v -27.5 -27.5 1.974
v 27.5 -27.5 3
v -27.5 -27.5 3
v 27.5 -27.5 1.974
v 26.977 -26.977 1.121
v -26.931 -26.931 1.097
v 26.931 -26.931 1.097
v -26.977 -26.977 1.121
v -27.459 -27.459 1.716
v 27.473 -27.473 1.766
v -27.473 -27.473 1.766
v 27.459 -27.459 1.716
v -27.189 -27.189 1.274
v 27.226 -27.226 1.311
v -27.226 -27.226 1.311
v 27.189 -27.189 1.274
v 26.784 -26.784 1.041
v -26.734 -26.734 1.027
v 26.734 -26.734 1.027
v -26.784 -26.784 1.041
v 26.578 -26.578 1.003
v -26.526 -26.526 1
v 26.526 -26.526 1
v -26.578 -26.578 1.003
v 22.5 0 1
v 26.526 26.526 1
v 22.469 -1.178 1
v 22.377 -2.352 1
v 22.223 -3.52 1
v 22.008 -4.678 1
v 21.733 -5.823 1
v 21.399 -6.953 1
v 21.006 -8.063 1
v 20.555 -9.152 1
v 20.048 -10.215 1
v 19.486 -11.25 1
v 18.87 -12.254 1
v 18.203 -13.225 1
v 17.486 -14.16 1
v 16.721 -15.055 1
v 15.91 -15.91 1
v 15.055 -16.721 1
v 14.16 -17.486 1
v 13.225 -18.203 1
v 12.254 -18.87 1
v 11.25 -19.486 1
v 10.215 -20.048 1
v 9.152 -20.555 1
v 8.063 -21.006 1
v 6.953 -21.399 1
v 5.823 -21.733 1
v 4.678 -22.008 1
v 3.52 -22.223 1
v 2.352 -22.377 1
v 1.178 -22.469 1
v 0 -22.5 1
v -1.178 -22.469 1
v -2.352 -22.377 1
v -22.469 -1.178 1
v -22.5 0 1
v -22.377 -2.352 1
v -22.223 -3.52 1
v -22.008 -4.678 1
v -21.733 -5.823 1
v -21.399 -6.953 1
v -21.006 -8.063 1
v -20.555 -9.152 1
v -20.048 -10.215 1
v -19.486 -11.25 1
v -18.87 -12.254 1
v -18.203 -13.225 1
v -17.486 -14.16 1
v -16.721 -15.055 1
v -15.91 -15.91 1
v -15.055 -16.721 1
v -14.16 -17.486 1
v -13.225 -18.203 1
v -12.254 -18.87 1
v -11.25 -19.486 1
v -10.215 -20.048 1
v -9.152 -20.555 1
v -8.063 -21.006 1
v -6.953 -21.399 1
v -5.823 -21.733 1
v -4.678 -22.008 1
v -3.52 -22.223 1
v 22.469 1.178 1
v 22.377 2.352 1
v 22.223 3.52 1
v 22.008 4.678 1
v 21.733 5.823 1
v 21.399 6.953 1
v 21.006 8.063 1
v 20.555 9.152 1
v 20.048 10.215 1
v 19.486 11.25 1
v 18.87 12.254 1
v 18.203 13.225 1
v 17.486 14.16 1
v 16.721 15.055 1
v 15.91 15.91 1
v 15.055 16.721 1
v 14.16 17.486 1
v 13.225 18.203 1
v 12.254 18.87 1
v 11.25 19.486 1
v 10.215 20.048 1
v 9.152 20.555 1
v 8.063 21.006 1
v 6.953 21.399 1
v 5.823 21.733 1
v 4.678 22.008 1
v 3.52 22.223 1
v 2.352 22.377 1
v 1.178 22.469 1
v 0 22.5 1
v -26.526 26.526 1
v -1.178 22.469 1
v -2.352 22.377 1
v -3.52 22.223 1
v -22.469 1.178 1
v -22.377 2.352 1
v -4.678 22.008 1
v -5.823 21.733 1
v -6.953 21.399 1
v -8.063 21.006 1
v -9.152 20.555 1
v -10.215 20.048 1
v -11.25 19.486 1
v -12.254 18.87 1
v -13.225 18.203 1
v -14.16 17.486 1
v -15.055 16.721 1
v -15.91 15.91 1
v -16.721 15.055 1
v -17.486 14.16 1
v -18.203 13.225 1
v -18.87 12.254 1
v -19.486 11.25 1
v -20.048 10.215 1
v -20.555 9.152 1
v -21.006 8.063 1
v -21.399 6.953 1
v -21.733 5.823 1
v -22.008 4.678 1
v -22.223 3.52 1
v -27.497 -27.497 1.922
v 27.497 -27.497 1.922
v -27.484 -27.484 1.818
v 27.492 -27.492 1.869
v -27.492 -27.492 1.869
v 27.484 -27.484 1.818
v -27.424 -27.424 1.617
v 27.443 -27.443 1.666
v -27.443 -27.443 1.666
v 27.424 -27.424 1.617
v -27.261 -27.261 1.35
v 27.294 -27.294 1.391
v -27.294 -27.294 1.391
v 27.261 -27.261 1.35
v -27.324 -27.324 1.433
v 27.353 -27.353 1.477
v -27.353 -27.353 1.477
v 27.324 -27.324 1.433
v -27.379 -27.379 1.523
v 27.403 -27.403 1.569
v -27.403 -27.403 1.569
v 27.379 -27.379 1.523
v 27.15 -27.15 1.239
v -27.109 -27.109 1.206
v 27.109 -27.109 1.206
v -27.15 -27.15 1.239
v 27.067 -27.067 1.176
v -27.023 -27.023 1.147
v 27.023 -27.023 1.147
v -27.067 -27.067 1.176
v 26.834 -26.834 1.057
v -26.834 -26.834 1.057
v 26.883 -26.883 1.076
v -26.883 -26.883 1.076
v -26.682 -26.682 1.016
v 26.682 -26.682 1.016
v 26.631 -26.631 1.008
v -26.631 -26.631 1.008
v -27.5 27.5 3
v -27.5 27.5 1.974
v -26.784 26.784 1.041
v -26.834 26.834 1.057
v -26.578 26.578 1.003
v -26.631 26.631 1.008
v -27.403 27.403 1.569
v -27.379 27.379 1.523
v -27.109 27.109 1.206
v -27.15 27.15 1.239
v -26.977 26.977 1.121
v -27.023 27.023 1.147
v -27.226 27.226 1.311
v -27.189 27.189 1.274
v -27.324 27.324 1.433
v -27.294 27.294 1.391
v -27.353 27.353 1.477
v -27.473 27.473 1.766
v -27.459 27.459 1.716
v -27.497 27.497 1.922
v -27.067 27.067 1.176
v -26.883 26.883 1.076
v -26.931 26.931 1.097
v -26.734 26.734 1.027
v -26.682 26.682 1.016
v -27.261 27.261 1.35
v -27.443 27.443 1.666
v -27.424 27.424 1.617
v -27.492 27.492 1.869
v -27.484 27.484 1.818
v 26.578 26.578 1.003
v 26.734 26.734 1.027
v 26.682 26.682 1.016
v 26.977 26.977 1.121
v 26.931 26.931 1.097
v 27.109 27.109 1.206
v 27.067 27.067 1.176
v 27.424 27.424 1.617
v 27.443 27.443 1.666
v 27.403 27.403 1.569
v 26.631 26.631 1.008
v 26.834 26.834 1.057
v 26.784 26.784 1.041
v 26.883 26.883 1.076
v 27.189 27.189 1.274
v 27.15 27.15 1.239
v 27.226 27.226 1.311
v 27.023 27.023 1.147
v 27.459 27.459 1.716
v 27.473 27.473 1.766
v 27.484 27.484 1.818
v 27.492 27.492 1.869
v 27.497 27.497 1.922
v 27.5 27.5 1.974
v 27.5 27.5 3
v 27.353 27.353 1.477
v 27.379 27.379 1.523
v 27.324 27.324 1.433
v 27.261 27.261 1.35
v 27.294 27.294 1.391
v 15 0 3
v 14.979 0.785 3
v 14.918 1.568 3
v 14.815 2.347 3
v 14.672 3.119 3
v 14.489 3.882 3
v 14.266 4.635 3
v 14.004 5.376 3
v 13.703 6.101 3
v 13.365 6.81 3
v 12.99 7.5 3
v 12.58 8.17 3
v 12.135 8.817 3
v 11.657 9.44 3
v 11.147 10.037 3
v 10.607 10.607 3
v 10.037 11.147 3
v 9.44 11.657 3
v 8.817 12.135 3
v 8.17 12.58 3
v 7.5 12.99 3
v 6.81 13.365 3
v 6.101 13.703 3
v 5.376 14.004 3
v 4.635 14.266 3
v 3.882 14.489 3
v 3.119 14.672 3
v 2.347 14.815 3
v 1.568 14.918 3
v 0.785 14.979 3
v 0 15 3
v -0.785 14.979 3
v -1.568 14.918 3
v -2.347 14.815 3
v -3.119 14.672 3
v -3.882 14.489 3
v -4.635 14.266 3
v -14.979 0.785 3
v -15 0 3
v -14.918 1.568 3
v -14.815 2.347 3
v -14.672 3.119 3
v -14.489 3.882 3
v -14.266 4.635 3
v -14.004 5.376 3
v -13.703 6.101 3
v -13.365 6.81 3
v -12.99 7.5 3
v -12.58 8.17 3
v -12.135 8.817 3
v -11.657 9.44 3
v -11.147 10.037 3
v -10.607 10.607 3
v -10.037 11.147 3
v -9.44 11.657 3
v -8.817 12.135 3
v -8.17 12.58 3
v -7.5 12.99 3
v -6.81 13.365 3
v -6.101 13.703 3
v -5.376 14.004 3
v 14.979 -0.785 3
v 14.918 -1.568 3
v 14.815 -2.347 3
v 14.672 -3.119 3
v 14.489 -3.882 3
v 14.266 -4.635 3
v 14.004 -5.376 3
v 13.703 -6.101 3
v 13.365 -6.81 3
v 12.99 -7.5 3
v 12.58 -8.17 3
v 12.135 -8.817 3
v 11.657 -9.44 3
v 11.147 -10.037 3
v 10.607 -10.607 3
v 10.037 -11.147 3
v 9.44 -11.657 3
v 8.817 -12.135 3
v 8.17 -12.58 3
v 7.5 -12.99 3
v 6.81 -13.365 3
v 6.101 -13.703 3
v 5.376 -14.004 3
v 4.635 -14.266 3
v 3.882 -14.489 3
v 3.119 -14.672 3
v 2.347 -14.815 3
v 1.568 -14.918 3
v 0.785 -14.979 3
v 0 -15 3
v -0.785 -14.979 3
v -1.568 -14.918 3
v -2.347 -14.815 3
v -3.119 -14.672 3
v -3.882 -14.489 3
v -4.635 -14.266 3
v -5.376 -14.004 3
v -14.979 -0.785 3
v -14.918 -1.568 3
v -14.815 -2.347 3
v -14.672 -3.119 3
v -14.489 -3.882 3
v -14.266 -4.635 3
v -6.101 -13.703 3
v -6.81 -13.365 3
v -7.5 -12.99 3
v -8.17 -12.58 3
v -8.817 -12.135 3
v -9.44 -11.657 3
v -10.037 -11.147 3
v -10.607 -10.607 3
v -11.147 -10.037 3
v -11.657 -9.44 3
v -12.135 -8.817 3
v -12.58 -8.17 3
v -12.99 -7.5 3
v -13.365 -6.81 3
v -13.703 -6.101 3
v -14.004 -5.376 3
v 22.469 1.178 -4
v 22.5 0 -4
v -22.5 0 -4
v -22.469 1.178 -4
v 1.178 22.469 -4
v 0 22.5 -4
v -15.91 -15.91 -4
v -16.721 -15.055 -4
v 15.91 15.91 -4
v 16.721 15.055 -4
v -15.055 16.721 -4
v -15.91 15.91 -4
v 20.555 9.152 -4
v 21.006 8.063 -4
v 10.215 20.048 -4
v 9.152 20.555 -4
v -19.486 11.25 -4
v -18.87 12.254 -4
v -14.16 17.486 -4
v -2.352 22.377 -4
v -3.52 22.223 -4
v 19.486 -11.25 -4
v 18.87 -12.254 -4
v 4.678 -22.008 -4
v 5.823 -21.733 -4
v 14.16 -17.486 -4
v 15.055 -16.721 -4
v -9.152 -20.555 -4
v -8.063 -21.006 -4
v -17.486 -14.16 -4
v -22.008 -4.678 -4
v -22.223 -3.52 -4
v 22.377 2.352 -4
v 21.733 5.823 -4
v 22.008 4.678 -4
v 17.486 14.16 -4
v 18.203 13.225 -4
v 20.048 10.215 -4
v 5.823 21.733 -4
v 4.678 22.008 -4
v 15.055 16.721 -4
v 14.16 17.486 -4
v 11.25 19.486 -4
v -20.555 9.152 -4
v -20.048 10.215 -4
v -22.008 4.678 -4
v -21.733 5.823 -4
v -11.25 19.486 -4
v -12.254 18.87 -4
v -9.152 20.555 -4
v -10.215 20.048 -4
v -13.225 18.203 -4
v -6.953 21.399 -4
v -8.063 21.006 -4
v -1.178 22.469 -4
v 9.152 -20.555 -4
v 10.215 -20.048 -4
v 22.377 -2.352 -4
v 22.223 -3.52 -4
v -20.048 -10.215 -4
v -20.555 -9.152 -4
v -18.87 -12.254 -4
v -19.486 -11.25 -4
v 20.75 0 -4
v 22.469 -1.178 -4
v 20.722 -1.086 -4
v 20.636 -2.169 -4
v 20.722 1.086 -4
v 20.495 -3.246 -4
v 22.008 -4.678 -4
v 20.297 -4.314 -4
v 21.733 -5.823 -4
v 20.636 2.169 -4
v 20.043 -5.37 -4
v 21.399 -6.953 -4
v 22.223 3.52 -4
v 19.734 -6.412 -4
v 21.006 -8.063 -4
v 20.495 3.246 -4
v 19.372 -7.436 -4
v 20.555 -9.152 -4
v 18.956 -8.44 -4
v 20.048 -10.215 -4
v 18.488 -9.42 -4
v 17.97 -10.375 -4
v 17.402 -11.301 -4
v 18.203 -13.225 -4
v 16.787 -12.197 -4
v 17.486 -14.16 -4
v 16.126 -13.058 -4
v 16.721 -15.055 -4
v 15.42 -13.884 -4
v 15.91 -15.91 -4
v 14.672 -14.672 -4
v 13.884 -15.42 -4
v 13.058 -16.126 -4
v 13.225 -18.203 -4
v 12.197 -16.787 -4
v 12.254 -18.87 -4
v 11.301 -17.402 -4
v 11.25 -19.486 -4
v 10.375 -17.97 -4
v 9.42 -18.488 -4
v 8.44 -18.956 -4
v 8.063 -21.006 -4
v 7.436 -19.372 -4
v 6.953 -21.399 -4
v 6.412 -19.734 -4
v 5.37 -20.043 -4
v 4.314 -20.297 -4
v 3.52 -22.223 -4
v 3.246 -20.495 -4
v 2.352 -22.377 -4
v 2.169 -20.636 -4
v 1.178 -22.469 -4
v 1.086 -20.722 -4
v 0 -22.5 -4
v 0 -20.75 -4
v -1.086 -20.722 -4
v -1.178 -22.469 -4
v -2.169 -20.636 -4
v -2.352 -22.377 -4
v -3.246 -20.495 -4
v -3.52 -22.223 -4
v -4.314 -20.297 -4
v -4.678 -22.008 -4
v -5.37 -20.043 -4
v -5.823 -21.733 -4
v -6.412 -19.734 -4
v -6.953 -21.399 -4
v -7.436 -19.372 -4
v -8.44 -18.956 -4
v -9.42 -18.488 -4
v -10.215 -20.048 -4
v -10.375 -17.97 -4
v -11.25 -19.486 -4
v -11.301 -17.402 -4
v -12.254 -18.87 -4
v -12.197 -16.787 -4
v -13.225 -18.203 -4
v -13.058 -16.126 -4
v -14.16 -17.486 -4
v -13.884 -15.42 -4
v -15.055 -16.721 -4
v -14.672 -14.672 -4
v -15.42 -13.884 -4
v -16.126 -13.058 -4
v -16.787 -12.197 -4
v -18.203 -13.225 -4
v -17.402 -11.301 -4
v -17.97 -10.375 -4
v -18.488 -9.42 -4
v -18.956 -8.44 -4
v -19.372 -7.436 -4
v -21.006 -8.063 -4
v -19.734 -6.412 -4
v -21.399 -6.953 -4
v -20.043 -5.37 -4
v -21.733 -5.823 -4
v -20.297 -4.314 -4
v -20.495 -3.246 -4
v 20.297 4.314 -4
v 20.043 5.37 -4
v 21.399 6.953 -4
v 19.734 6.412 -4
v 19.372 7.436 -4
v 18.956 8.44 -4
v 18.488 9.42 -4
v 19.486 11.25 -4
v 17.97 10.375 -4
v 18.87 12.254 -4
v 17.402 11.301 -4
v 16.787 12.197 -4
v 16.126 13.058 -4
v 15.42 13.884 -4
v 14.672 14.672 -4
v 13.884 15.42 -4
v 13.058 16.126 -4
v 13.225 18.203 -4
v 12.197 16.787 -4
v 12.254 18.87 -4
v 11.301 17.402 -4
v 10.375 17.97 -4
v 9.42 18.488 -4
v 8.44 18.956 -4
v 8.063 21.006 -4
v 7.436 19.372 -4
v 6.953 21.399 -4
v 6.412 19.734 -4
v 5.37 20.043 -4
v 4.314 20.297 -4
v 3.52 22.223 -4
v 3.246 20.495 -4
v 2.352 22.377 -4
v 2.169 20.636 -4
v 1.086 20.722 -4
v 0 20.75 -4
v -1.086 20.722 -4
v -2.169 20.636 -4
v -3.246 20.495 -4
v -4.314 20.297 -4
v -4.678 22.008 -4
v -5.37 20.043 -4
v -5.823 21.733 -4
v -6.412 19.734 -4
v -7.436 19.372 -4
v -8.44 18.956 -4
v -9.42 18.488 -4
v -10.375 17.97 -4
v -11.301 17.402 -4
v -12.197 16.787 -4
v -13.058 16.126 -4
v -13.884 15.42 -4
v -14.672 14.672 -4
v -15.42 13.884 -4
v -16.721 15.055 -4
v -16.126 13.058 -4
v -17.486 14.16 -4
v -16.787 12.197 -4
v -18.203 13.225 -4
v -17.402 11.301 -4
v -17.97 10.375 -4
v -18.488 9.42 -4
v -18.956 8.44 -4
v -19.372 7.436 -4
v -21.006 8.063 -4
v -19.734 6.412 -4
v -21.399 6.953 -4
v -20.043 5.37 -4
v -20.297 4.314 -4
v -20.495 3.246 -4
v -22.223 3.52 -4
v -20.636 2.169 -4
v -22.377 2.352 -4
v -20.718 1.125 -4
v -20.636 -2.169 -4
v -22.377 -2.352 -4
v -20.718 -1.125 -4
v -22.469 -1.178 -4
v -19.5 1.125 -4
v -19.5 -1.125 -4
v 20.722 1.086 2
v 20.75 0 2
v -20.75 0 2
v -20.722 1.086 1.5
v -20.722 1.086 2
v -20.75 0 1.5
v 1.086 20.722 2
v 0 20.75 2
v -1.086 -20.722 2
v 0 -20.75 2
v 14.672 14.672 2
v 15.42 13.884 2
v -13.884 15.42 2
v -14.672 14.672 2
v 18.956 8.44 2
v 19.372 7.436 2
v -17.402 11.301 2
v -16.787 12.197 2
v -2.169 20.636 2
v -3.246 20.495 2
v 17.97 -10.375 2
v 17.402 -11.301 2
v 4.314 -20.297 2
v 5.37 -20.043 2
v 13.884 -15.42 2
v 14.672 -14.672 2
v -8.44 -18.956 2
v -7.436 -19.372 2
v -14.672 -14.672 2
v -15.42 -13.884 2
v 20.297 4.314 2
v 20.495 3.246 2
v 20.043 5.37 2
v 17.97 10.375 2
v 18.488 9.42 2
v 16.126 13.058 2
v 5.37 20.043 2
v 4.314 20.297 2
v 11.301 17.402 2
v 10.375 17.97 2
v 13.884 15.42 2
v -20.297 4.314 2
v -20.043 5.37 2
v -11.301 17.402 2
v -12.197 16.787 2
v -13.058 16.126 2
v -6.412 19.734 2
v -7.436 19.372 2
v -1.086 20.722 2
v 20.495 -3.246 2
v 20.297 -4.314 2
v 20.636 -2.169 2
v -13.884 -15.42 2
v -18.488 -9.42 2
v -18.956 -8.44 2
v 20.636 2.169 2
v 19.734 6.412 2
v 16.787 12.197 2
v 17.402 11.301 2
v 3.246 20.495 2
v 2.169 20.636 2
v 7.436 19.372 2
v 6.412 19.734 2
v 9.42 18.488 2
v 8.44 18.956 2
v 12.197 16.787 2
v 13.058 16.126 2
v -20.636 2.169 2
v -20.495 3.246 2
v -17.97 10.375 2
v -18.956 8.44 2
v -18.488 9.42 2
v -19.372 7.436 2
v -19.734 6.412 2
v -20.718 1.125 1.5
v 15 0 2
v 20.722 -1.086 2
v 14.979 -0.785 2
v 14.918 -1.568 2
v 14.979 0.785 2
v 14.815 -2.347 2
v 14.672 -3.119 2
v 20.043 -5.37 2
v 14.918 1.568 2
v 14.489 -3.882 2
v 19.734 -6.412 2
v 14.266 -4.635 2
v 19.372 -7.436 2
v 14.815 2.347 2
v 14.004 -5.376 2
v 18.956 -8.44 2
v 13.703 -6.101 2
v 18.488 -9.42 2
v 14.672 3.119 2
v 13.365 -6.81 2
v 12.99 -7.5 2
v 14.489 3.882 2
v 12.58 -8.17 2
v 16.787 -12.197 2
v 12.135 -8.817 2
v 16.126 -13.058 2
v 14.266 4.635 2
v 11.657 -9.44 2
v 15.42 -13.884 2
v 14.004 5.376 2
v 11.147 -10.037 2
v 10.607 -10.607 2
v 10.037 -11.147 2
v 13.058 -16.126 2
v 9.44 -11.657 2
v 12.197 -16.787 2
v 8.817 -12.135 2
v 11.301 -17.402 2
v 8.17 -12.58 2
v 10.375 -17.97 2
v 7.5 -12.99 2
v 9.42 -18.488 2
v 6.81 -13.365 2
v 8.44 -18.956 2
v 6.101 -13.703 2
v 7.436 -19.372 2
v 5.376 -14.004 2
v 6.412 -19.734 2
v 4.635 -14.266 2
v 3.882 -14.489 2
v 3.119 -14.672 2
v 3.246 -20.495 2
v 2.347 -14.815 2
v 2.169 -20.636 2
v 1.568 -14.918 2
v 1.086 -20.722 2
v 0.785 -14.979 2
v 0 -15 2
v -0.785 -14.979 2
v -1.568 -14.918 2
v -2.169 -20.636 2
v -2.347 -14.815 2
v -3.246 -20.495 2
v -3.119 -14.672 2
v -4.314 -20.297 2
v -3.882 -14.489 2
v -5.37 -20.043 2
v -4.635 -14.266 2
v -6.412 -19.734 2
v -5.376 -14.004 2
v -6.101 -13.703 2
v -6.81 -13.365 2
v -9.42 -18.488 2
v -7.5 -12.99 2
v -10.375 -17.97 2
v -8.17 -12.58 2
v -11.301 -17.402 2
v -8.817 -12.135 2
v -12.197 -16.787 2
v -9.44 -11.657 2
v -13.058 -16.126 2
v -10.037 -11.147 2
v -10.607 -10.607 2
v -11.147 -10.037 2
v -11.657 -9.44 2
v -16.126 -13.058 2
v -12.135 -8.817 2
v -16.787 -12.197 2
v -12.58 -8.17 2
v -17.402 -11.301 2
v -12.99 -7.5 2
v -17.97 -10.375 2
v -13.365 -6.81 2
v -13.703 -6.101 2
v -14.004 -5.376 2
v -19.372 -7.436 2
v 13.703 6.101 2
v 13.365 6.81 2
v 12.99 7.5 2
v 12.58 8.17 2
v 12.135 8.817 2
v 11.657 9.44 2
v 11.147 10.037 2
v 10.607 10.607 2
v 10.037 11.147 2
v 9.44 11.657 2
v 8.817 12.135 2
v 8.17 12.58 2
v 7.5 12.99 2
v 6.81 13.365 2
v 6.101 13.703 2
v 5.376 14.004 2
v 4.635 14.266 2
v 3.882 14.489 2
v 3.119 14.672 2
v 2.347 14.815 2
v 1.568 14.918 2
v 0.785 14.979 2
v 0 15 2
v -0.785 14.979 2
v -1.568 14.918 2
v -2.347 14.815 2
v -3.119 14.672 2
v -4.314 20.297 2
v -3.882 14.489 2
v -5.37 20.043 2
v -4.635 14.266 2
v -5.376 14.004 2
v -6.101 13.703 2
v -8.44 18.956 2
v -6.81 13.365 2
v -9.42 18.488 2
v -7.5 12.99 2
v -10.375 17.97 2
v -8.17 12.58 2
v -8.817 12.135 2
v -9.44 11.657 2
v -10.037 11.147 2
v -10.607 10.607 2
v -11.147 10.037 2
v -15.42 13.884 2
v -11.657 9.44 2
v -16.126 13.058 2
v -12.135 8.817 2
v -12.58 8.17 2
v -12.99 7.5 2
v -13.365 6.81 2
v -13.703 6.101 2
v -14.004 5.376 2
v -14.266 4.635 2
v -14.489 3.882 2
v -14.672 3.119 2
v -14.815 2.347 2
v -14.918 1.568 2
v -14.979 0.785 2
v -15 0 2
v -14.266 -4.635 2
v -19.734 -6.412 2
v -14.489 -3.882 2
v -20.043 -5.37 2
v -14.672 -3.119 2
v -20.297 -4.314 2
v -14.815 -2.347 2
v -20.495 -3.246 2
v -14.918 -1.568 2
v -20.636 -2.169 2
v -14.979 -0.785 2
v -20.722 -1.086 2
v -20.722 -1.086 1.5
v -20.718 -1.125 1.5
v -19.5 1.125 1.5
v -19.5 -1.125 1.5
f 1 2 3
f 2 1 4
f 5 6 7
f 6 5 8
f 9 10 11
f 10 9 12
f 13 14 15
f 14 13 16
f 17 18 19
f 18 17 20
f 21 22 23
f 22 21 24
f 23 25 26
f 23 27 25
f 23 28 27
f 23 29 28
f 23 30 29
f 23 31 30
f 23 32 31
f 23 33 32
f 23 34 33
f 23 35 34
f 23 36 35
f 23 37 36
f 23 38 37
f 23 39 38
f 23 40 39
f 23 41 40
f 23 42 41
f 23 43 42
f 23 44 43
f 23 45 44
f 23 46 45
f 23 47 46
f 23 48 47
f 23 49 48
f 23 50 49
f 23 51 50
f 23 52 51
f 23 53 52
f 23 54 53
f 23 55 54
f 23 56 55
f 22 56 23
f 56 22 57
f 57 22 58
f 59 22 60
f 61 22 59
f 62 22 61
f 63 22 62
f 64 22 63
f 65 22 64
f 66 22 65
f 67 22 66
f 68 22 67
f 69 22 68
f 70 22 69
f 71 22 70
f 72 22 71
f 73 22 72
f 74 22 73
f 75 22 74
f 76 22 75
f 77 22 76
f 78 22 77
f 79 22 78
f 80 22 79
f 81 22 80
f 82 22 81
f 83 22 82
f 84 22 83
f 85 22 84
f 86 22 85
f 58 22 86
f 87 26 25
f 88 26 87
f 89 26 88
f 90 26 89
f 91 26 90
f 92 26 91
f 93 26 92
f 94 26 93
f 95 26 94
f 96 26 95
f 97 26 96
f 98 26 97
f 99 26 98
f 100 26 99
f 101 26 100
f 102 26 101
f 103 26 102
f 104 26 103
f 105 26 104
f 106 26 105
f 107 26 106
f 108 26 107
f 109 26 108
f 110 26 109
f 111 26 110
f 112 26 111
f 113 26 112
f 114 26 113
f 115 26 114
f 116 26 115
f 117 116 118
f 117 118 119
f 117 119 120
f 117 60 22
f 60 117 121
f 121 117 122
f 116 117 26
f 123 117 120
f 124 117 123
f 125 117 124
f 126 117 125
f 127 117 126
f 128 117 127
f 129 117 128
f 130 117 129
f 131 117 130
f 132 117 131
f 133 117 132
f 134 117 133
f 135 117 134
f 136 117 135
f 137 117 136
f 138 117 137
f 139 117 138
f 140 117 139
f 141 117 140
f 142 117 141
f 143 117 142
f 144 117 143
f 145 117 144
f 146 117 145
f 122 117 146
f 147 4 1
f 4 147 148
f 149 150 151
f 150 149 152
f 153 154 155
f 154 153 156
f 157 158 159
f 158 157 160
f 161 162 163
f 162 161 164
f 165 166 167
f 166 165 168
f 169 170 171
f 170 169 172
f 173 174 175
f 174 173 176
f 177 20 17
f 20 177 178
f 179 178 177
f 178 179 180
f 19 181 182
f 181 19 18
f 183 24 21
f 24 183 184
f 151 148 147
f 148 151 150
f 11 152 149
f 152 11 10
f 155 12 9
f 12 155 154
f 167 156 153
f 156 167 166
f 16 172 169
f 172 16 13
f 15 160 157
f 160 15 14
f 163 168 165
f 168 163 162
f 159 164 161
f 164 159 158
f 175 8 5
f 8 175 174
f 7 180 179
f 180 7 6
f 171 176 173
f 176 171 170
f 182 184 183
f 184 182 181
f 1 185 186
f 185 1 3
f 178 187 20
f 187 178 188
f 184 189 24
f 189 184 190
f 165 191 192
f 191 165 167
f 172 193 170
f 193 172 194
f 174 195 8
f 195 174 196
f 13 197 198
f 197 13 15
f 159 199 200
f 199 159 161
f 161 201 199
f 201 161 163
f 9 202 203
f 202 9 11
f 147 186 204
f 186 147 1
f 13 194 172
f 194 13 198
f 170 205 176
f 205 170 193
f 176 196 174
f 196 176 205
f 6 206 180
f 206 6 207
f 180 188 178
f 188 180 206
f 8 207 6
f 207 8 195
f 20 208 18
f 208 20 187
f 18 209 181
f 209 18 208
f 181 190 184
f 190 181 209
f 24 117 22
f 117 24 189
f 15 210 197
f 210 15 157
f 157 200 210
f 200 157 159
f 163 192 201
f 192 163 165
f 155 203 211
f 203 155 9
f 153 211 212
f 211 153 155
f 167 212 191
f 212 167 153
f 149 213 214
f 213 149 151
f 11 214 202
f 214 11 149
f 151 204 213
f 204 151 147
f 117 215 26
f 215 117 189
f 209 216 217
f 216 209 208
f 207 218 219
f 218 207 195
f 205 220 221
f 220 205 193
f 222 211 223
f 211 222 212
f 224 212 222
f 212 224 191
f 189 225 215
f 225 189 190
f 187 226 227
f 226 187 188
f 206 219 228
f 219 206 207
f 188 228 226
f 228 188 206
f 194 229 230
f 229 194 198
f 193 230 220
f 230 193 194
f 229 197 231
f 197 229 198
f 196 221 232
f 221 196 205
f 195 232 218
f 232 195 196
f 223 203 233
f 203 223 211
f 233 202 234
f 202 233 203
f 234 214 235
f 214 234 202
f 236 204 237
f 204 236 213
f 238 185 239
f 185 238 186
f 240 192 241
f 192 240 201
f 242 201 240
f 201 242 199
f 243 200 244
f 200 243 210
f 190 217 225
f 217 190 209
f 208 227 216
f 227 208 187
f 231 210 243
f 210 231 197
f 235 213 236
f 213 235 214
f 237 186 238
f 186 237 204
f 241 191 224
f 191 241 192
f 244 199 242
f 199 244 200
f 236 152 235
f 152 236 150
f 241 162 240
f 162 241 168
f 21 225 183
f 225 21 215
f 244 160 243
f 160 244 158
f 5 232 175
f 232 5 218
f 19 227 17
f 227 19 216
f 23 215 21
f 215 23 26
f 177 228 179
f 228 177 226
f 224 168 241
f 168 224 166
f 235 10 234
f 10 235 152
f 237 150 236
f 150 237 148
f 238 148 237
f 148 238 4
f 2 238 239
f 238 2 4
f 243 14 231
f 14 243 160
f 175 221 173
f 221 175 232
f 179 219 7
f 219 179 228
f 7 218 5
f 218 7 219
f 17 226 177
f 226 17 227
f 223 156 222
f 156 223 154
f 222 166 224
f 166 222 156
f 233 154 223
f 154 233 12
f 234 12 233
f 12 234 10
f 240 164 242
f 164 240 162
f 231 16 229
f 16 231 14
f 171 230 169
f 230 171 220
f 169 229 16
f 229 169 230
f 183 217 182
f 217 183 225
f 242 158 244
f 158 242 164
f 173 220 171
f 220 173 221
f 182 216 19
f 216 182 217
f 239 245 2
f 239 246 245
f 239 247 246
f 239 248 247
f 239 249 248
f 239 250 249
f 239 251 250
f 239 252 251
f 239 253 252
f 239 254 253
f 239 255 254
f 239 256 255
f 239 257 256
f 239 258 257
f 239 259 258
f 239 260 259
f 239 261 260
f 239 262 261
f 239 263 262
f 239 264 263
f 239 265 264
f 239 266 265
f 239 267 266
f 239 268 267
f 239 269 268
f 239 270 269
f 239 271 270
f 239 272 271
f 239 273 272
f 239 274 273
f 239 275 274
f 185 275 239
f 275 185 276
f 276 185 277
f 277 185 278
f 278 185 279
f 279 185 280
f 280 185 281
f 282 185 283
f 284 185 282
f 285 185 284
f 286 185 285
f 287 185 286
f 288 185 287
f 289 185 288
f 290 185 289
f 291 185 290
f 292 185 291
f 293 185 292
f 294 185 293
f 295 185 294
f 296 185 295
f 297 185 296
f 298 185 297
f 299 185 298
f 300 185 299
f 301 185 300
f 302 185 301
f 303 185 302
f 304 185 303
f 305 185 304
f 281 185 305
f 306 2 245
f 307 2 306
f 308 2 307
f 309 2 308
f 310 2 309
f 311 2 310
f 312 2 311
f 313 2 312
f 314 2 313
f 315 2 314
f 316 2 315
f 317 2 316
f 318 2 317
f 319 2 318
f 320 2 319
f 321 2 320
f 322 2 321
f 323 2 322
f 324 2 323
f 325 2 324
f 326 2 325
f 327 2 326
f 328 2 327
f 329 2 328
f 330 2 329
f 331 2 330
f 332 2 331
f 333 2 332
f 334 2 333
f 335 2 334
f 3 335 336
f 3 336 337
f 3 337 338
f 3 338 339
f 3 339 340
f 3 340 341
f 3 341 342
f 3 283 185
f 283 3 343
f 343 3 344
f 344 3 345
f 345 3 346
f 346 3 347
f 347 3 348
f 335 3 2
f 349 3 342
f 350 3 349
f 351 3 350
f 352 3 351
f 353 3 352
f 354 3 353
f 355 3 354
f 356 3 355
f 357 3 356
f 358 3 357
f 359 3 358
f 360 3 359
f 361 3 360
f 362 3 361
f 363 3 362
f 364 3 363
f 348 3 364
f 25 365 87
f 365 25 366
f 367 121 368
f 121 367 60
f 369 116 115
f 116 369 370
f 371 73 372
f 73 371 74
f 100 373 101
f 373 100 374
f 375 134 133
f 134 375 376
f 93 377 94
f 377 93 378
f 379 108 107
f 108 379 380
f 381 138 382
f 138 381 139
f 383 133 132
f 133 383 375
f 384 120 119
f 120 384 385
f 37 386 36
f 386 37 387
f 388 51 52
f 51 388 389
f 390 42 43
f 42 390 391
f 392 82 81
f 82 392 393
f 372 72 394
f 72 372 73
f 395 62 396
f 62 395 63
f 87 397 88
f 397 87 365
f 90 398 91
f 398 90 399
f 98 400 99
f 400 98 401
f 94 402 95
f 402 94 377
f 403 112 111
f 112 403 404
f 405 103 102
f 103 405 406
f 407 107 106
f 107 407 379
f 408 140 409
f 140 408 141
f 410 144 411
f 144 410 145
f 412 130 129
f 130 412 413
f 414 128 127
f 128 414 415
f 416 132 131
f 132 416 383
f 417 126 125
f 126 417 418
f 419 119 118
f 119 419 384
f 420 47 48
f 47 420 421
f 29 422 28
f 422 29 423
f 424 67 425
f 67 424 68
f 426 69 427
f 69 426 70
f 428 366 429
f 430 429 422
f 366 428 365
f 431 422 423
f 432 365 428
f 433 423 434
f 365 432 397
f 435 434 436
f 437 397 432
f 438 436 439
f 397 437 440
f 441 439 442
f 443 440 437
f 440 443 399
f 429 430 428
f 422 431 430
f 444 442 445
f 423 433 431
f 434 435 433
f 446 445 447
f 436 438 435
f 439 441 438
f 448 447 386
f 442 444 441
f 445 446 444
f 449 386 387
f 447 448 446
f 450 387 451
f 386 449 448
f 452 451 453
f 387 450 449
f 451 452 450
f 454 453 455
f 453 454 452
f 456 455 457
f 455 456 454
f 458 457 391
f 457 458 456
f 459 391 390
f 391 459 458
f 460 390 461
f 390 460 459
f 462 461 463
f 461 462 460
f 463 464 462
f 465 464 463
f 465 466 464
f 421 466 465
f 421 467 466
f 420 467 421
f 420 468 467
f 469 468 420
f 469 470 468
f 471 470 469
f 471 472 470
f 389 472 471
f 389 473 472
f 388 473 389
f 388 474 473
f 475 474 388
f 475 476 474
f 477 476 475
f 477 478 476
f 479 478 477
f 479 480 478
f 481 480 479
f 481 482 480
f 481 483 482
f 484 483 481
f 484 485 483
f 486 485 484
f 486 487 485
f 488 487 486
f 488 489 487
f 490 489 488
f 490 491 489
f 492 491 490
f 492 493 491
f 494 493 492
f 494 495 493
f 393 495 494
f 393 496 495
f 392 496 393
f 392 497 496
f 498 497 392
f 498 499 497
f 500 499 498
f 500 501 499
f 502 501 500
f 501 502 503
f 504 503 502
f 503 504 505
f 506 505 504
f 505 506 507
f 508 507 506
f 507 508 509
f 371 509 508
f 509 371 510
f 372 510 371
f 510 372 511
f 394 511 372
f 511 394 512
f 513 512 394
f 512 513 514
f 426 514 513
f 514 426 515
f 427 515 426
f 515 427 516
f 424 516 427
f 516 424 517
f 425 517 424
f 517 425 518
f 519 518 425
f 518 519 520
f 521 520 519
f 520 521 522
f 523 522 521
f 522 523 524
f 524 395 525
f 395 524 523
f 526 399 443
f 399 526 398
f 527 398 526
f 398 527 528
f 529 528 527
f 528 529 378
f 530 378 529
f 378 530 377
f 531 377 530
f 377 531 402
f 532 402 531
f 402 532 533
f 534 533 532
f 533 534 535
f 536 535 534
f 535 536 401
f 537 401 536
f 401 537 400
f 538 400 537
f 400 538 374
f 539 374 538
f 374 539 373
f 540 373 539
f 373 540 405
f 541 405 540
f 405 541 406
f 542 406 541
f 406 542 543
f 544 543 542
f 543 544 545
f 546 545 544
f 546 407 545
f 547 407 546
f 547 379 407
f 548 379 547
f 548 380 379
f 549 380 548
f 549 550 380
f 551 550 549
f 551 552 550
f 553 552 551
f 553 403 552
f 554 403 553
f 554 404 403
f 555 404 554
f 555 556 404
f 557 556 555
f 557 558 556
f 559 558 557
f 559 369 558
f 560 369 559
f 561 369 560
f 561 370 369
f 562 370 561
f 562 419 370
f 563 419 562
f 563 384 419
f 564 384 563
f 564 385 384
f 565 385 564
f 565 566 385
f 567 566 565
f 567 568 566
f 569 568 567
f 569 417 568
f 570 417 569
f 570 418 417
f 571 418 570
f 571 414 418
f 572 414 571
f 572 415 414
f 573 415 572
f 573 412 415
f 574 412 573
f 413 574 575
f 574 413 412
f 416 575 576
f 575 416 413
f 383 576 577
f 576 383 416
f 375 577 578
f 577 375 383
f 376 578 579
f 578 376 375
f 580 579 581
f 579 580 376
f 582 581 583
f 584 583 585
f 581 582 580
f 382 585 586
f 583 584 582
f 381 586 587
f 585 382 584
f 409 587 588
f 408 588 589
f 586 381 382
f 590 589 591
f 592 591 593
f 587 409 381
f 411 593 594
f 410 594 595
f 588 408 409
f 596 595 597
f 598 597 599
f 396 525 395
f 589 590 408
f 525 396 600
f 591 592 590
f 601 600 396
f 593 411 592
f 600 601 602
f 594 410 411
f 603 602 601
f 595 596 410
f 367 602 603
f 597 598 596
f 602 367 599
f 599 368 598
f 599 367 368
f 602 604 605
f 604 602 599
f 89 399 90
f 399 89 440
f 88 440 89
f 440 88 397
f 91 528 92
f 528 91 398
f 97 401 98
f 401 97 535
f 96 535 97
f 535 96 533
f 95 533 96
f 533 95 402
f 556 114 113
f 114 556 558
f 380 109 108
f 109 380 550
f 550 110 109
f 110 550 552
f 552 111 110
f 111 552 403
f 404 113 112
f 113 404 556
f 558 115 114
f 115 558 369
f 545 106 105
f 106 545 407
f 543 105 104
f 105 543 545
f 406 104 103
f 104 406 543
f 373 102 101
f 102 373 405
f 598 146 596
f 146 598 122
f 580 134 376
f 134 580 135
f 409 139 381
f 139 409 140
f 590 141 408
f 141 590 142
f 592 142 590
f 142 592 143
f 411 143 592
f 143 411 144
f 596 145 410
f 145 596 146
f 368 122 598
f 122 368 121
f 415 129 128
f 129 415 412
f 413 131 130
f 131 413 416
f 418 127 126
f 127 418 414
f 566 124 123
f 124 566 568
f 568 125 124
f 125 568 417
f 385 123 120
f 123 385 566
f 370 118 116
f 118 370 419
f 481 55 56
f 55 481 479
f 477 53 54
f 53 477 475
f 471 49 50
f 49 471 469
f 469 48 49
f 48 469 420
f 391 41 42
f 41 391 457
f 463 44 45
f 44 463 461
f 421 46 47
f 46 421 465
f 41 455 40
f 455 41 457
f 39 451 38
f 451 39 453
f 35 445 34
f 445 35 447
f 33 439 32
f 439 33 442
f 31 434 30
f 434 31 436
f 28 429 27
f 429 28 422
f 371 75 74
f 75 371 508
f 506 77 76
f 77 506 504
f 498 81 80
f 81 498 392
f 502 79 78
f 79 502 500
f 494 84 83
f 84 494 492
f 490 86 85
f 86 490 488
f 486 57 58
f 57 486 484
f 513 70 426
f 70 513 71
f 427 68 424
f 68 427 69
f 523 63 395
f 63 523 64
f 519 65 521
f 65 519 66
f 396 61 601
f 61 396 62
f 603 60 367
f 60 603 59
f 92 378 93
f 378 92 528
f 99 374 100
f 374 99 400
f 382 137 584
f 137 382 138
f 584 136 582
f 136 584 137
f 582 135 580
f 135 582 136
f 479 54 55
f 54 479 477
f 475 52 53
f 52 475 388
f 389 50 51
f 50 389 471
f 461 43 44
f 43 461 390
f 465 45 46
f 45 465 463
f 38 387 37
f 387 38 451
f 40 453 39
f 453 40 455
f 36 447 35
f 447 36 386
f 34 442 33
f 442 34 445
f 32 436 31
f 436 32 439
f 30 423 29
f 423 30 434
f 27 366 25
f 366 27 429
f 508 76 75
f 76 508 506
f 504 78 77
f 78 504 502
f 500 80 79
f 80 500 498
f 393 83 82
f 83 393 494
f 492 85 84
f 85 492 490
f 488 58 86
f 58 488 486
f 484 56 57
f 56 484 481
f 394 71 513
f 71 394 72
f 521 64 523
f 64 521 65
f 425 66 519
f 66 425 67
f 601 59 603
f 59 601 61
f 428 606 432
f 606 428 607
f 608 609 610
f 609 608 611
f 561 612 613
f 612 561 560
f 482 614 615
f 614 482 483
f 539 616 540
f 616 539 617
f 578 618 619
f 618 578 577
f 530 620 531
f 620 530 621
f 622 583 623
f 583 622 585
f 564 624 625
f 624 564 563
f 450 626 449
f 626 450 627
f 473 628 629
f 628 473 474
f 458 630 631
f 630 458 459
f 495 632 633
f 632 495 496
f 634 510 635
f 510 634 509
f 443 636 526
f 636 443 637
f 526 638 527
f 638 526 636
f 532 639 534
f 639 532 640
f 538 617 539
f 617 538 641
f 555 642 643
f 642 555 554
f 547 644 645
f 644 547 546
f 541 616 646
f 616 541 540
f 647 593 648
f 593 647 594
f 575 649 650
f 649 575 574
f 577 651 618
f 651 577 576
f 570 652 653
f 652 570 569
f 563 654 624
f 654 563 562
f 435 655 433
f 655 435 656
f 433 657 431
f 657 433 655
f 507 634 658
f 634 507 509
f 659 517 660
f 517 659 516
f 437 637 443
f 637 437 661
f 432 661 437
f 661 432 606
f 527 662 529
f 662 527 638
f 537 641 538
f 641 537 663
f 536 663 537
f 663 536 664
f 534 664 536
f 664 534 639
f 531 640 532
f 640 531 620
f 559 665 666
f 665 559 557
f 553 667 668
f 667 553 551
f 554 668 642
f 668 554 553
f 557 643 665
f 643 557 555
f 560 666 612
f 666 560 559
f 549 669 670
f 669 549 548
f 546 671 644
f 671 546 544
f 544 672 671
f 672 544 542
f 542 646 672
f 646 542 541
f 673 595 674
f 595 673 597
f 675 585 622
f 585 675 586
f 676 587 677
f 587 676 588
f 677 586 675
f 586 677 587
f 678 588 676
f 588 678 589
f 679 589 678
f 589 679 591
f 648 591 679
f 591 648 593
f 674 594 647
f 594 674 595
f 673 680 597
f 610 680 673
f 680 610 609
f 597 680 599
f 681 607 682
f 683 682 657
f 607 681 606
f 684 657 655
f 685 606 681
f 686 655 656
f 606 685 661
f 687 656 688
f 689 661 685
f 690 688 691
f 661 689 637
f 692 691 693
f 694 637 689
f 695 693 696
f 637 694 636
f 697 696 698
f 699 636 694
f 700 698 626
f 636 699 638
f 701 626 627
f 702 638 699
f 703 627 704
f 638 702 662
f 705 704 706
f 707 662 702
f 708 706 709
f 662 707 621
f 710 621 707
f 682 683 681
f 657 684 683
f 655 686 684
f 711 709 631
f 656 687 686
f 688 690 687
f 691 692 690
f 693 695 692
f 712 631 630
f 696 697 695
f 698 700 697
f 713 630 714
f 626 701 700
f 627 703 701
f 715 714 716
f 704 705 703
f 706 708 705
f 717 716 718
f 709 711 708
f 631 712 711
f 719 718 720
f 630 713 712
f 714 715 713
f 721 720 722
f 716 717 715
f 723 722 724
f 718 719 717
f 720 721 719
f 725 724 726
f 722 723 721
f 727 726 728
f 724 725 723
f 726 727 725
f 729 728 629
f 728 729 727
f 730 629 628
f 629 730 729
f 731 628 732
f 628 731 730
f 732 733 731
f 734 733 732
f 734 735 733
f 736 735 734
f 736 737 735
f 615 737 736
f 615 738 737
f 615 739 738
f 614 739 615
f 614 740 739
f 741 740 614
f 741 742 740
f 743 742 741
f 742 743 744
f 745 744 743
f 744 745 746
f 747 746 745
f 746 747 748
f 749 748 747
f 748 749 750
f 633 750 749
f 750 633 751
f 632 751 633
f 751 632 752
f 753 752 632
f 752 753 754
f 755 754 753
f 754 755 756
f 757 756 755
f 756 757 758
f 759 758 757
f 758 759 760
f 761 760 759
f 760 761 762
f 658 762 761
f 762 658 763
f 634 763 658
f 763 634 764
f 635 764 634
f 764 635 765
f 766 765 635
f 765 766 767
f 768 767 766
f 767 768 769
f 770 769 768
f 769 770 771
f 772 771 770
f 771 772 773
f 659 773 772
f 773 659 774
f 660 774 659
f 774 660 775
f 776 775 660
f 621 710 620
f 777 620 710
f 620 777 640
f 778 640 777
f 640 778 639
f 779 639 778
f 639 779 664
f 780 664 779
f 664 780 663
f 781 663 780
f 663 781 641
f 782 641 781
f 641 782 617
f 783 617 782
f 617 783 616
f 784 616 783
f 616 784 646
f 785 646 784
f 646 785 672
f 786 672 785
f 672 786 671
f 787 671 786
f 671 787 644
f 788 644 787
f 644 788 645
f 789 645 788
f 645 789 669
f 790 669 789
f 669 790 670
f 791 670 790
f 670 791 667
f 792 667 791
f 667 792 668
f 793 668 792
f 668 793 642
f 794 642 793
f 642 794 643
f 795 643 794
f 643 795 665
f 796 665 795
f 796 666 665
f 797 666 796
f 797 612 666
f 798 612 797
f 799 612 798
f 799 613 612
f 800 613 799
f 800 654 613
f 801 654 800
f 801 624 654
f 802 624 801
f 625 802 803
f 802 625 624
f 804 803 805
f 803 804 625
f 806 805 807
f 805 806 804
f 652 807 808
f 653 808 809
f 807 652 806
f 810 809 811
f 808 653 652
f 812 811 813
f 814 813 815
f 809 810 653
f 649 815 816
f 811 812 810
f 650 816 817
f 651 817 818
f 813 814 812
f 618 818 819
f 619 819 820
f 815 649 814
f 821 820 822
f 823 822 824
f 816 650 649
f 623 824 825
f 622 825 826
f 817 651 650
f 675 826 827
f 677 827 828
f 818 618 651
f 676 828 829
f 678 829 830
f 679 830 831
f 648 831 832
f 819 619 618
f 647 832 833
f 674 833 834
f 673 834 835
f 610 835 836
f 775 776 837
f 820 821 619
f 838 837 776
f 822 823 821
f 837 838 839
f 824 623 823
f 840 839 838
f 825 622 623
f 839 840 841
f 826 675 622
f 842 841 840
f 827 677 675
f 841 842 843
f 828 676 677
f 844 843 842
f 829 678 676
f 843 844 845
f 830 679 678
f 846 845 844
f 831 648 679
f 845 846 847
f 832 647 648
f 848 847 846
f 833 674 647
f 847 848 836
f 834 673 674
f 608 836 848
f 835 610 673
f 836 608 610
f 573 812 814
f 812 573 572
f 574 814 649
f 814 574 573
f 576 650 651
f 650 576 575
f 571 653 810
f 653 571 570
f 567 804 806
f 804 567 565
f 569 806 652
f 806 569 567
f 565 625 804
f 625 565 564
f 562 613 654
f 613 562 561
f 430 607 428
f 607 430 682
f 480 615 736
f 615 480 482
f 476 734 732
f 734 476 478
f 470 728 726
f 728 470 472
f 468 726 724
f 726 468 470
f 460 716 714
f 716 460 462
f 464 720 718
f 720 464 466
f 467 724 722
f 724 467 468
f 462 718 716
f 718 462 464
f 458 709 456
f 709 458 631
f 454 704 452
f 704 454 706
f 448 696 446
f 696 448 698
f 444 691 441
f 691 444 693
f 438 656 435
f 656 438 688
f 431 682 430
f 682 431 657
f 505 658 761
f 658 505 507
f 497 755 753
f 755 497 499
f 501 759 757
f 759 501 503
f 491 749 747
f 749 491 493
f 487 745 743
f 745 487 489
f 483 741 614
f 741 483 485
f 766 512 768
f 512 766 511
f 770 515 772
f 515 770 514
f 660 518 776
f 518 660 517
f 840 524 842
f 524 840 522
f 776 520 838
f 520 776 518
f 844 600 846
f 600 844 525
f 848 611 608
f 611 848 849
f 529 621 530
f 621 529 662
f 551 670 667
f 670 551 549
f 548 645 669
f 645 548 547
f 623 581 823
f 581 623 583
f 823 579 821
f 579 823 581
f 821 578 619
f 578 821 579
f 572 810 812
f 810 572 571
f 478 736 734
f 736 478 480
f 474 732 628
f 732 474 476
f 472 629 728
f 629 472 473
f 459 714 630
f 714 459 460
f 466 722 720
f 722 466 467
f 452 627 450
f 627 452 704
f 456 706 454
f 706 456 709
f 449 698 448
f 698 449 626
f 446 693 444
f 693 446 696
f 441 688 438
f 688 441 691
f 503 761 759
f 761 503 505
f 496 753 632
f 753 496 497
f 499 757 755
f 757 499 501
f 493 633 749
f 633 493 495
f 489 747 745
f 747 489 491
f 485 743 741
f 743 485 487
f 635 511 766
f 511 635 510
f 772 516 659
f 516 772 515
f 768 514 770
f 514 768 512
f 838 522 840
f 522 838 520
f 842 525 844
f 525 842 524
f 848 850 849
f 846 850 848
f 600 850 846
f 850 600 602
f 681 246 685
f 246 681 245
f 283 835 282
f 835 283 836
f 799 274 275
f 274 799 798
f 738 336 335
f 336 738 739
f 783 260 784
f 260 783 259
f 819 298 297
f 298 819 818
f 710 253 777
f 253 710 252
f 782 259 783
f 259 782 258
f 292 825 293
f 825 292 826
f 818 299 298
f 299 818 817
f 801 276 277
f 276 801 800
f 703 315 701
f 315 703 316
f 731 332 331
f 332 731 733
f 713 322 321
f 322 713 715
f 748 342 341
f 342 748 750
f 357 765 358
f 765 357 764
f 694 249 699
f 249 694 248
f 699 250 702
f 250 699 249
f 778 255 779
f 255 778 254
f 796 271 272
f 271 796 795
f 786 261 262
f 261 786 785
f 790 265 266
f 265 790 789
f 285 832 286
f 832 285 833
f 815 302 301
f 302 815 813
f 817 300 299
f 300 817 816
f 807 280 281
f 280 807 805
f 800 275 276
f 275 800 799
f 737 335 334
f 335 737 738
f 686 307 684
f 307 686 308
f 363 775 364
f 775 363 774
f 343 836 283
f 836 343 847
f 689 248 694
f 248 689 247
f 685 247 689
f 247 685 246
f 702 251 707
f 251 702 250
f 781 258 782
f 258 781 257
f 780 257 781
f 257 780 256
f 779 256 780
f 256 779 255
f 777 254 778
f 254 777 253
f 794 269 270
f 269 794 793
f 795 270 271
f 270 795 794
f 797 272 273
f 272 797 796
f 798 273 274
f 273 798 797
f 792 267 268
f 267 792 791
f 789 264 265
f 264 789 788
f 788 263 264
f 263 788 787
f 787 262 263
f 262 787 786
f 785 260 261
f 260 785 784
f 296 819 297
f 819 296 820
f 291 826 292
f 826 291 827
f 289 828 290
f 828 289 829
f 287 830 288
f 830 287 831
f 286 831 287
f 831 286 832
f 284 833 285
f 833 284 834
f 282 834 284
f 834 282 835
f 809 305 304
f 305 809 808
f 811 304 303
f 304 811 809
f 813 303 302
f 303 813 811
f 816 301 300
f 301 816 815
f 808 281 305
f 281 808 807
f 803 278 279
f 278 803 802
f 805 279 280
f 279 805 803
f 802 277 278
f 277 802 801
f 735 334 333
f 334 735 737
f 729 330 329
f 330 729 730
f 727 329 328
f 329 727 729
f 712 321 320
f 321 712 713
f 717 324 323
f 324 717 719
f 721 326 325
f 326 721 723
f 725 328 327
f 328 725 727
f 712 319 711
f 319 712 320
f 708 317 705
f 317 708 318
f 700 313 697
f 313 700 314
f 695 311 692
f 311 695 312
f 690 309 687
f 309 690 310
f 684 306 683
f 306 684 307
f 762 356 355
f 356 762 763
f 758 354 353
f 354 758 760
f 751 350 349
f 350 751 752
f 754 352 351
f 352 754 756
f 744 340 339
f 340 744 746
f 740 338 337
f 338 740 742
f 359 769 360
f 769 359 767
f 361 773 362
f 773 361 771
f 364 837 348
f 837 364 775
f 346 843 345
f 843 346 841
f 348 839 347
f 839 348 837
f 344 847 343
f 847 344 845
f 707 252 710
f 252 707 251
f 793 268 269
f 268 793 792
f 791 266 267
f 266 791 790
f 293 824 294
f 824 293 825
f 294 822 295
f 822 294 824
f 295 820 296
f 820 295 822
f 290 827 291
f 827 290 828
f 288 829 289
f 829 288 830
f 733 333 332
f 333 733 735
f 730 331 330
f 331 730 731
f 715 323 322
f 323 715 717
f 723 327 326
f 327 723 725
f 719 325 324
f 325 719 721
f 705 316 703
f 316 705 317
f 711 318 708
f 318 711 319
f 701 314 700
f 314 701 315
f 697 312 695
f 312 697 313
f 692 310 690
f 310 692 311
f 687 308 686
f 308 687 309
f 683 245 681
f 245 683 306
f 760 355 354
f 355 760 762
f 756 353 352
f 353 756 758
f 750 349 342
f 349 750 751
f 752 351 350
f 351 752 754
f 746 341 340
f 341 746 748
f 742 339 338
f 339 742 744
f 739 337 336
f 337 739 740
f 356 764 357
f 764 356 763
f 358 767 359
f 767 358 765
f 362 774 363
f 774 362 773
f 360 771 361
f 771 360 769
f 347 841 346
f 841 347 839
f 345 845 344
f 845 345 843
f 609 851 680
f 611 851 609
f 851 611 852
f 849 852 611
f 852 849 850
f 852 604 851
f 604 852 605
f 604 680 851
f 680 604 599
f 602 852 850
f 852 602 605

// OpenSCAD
include <BOSL/constants.scad>
use <BOSL/shapes.scad>
use <BOSL/transforms.scad>
use <BOSL/masks.scad>

//Slider_Disc
fileVersion = "1A";
  
$fn=120; //circle smoothness

union() {  
  difference(){
    union() {
     color("lime") down(4) cylinder(h=5.5, d=45); //disc object
    color("pink") forward(0) up(2) cuboid([55, 55, 2], fillet=1, edges=EDGES_BOTTOM); //bench mount

    }
     color("aqua") down(8) cylinder(h=10, d=41.5); //sensor cutout (full width, with overlay)
     color("orange") cylinder(h=10, d=30); //finger cutout
  }//difference

  color("blue") forward(1.125) left(21.75) down(4) cube([2.25, 2.25, 5.5]); // trackpoint alignment 

}
